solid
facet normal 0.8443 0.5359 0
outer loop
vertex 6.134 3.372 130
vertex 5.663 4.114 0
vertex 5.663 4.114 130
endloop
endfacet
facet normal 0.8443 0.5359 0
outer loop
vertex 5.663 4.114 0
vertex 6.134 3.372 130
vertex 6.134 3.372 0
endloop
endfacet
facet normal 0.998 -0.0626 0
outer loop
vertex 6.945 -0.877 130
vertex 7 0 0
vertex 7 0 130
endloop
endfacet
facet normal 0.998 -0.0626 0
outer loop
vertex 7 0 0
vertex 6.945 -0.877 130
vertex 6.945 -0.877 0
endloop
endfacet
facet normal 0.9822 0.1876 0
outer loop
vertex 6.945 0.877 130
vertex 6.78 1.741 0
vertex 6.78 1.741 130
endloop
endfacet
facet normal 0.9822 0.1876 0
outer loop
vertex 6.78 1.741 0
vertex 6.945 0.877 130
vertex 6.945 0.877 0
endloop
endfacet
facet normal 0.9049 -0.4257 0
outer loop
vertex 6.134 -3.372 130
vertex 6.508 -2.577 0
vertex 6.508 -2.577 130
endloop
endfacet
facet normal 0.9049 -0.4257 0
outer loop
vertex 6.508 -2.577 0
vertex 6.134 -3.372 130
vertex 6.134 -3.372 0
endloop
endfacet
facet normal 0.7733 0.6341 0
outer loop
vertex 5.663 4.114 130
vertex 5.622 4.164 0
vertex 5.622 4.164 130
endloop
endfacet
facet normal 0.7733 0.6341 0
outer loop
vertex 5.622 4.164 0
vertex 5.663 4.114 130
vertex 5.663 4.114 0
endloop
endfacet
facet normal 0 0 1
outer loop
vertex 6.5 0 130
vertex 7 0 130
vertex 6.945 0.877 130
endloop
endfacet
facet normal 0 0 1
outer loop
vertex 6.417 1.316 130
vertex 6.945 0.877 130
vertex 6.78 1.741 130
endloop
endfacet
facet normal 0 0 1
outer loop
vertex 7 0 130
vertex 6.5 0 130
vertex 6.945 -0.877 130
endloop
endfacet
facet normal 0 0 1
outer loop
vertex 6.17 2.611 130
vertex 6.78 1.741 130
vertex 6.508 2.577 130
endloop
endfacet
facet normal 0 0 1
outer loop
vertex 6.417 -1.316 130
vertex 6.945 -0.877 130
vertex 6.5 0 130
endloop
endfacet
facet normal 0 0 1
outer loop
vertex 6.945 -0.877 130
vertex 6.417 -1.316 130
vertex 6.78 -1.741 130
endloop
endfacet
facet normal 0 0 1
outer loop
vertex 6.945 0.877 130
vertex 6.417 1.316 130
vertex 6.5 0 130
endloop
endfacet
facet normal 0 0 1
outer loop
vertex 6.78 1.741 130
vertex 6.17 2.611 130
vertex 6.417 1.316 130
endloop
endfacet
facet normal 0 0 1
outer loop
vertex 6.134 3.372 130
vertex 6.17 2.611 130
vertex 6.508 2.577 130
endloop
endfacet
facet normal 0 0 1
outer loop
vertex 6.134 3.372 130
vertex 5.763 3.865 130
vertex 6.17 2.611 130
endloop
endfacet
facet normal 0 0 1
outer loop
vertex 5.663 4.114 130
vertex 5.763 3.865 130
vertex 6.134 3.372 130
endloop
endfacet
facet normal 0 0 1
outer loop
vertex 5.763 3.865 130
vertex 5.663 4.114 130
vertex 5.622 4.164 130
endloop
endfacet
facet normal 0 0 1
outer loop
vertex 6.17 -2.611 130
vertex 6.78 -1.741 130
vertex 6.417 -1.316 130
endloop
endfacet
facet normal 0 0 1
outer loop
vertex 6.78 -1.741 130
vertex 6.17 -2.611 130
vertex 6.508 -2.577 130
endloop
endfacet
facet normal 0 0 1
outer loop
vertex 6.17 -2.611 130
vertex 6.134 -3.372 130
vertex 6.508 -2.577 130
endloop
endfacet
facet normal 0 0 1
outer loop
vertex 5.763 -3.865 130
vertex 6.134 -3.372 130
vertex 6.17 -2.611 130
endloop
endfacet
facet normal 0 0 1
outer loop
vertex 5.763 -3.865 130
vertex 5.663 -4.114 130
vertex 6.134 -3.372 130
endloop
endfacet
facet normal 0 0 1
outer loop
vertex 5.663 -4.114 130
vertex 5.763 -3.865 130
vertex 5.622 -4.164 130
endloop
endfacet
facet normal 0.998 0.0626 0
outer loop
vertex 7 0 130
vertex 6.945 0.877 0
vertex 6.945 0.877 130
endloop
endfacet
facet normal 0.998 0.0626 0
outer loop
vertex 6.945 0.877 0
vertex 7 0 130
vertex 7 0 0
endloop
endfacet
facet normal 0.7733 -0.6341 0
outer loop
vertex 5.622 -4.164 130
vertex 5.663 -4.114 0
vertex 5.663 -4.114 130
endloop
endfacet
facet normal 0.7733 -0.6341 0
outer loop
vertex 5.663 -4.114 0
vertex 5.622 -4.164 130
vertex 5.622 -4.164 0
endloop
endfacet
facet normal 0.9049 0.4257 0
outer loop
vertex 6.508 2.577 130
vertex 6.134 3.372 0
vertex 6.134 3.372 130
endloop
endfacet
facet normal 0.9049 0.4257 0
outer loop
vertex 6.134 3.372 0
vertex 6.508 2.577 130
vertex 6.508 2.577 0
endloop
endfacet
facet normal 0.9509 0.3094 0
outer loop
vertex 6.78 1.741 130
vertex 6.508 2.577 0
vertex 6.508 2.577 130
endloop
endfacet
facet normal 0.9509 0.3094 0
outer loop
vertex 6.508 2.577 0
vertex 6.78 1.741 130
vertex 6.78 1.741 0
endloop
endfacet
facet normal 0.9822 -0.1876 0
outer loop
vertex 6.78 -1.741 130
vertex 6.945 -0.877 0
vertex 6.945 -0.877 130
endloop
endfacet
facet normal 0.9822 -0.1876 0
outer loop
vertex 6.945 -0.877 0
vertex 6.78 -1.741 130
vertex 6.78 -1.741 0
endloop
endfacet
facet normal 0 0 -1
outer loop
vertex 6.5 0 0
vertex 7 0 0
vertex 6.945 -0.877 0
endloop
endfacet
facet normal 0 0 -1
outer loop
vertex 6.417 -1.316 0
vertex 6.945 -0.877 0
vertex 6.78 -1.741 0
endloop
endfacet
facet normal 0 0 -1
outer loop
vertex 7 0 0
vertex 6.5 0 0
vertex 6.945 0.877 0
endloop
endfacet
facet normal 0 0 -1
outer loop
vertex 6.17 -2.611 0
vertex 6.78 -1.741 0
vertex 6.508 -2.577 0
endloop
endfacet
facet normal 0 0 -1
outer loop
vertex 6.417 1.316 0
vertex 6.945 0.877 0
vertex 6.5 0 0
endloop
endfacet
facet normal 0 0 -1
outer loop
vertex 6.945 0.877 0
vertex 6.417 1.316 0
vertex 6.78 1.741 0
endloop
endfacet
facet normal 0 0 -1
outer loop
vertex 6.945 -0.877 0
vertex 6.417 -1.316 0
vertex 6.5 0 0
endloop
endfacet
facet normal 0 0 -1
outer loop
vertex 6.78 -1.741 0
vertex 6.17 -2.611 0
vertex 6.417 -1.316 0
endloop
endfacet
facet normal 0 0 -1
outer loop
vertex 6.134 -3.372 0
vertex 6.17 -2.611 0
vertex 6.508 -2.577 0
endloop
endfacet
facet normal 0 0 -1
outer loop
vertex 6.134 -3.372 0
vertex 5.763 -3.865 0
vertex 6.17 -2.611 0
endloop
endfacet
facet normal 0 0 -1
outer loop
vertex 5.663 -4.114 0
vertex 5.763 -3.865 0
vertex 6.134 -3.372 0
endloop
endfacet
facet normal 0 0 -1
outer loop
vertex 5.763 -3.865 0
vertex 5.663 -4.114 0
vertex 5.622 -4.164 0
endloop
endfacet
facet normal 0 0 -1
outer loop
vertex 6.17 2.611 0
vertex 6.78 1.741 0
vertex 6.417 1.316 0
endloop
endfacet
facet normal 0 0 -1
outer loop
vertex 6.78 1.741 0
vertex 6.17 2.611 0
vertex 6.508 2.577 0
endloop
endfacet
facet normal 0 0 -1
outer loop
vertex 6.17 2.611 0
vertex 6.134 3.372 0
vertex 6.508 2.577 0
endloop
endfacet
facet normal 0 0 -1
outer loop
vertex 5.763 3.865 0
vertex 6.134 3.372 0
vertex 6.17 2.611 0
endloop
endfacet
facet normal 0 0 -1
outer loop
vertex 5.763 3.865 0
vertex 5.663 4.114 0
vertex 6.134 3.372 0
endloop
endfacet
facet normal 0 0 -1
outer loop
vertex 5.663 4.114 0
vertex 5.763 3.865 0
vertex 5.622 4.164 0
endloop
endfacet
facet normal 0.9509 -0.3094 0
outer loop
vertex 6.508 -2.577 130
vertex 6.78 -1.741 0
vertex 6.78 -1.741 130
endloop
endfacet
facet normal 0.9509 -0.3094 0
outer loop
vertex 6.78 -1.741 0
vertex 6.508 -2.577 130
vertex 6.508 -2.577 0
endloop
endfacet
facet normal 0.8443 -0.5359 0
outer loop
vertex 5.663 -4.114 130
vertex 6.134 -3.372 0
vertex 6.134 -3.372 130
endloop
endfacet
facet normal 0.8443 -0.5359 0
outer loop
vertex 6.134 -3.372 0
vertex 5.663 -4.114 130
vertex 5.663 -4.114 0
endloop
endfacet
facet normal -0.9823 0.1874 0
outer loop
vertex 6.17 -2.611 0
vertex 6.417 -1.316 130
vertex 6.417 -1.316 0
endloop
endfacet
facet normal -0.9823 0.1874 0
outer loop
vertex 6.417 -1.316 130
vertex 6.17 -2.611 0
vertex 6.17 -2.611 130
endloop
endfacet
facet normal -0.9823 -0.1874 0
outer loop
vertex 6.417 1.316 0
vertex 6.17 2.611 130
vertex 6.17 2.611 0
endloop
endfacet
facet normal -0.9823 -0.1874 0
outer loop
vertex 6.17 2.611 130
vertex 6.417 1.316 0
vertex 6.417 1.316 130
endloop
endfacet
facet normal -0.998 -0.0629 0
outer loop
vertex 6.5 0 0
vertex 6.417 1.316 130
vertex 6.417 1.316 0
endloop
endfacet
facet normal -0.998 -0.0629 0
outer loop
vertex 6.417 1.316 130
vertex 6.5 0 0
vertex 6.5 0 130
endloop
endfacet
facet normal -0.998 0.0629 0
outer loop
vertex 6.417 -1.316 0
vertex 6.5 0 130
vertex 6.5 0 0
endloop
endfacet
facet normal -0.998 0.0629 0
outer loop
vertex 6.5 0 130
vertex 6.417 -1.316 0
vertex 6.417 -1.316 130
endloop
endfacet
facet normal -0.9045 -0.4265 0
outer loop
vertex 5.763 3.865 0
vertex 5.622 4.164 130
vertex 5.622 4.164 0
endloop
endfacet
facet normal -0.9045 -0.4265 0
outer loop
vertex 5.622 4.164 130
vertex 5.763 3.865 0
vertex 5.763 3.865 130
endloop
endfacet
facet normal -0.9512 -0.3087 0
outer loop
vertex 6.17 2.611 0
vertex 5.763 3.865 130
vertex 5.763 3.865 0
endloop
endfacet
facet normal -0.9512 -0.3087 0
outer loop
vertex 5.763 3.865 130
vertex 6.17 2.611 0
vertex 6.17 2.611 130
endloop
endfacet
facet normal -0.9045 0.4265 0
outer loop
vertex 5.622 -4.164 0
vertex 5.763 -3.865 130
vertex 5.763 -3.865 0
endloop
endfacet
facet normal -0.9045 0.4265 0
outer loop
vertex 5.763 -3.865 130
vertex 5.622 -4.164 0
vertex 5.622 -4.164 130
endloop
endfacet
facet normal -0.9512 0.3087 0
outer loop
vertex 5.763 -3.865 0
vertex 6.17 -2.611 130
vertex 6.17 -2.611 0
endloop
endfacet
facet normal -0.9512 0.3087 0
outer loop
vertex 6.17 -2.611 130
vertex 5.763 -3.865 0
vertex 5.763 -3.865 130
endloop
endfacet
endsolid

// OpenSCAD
$fn = 50;


difference() {
	union() {
		cylinder(h = 130, r = 7.0000000000);
		translate(v = [-7.0000000000, 0, 0]) {
			cylinder(h = 130, r = 7.0000000000);
		}
	}
	union() {
		cylinder(h = 130, r = 3.2500000000);
		cylinder(h = 130, r = 1.8000000000);
		cylinder(h = 130, r = 1.8000000000);
		cylinder(h = 130, r = 1.8000000000);
		translate(v = [-11.5000000000, 0, 0]) {
			hull() {
				translate(v = [-3.7500000000, 0.0000000000, 0]) {
					cylinder(h = 130, r = 7.5000000000);
				}
				translate(v = [3.7500000000, 0.0000000000, 0]) {
					cylinder(h = 130, r = 7.5000000000);
				}
				translate(v = [-3.7500000000, -0.0000000000, 0]) {
					cylinder(h = 130, r = 7.5000000000);
				}
				translate(v = [3.7500000000, -0.0000000000, 0]) {
					cylinder(h = 130, r = 7.5000000000);
				}
			}
		}
		translate(v = [-4.0000000000, 0, 0.0000000000]) {
			cylinder(h = 130, r = 10.5000000000);
		}
	}
}
